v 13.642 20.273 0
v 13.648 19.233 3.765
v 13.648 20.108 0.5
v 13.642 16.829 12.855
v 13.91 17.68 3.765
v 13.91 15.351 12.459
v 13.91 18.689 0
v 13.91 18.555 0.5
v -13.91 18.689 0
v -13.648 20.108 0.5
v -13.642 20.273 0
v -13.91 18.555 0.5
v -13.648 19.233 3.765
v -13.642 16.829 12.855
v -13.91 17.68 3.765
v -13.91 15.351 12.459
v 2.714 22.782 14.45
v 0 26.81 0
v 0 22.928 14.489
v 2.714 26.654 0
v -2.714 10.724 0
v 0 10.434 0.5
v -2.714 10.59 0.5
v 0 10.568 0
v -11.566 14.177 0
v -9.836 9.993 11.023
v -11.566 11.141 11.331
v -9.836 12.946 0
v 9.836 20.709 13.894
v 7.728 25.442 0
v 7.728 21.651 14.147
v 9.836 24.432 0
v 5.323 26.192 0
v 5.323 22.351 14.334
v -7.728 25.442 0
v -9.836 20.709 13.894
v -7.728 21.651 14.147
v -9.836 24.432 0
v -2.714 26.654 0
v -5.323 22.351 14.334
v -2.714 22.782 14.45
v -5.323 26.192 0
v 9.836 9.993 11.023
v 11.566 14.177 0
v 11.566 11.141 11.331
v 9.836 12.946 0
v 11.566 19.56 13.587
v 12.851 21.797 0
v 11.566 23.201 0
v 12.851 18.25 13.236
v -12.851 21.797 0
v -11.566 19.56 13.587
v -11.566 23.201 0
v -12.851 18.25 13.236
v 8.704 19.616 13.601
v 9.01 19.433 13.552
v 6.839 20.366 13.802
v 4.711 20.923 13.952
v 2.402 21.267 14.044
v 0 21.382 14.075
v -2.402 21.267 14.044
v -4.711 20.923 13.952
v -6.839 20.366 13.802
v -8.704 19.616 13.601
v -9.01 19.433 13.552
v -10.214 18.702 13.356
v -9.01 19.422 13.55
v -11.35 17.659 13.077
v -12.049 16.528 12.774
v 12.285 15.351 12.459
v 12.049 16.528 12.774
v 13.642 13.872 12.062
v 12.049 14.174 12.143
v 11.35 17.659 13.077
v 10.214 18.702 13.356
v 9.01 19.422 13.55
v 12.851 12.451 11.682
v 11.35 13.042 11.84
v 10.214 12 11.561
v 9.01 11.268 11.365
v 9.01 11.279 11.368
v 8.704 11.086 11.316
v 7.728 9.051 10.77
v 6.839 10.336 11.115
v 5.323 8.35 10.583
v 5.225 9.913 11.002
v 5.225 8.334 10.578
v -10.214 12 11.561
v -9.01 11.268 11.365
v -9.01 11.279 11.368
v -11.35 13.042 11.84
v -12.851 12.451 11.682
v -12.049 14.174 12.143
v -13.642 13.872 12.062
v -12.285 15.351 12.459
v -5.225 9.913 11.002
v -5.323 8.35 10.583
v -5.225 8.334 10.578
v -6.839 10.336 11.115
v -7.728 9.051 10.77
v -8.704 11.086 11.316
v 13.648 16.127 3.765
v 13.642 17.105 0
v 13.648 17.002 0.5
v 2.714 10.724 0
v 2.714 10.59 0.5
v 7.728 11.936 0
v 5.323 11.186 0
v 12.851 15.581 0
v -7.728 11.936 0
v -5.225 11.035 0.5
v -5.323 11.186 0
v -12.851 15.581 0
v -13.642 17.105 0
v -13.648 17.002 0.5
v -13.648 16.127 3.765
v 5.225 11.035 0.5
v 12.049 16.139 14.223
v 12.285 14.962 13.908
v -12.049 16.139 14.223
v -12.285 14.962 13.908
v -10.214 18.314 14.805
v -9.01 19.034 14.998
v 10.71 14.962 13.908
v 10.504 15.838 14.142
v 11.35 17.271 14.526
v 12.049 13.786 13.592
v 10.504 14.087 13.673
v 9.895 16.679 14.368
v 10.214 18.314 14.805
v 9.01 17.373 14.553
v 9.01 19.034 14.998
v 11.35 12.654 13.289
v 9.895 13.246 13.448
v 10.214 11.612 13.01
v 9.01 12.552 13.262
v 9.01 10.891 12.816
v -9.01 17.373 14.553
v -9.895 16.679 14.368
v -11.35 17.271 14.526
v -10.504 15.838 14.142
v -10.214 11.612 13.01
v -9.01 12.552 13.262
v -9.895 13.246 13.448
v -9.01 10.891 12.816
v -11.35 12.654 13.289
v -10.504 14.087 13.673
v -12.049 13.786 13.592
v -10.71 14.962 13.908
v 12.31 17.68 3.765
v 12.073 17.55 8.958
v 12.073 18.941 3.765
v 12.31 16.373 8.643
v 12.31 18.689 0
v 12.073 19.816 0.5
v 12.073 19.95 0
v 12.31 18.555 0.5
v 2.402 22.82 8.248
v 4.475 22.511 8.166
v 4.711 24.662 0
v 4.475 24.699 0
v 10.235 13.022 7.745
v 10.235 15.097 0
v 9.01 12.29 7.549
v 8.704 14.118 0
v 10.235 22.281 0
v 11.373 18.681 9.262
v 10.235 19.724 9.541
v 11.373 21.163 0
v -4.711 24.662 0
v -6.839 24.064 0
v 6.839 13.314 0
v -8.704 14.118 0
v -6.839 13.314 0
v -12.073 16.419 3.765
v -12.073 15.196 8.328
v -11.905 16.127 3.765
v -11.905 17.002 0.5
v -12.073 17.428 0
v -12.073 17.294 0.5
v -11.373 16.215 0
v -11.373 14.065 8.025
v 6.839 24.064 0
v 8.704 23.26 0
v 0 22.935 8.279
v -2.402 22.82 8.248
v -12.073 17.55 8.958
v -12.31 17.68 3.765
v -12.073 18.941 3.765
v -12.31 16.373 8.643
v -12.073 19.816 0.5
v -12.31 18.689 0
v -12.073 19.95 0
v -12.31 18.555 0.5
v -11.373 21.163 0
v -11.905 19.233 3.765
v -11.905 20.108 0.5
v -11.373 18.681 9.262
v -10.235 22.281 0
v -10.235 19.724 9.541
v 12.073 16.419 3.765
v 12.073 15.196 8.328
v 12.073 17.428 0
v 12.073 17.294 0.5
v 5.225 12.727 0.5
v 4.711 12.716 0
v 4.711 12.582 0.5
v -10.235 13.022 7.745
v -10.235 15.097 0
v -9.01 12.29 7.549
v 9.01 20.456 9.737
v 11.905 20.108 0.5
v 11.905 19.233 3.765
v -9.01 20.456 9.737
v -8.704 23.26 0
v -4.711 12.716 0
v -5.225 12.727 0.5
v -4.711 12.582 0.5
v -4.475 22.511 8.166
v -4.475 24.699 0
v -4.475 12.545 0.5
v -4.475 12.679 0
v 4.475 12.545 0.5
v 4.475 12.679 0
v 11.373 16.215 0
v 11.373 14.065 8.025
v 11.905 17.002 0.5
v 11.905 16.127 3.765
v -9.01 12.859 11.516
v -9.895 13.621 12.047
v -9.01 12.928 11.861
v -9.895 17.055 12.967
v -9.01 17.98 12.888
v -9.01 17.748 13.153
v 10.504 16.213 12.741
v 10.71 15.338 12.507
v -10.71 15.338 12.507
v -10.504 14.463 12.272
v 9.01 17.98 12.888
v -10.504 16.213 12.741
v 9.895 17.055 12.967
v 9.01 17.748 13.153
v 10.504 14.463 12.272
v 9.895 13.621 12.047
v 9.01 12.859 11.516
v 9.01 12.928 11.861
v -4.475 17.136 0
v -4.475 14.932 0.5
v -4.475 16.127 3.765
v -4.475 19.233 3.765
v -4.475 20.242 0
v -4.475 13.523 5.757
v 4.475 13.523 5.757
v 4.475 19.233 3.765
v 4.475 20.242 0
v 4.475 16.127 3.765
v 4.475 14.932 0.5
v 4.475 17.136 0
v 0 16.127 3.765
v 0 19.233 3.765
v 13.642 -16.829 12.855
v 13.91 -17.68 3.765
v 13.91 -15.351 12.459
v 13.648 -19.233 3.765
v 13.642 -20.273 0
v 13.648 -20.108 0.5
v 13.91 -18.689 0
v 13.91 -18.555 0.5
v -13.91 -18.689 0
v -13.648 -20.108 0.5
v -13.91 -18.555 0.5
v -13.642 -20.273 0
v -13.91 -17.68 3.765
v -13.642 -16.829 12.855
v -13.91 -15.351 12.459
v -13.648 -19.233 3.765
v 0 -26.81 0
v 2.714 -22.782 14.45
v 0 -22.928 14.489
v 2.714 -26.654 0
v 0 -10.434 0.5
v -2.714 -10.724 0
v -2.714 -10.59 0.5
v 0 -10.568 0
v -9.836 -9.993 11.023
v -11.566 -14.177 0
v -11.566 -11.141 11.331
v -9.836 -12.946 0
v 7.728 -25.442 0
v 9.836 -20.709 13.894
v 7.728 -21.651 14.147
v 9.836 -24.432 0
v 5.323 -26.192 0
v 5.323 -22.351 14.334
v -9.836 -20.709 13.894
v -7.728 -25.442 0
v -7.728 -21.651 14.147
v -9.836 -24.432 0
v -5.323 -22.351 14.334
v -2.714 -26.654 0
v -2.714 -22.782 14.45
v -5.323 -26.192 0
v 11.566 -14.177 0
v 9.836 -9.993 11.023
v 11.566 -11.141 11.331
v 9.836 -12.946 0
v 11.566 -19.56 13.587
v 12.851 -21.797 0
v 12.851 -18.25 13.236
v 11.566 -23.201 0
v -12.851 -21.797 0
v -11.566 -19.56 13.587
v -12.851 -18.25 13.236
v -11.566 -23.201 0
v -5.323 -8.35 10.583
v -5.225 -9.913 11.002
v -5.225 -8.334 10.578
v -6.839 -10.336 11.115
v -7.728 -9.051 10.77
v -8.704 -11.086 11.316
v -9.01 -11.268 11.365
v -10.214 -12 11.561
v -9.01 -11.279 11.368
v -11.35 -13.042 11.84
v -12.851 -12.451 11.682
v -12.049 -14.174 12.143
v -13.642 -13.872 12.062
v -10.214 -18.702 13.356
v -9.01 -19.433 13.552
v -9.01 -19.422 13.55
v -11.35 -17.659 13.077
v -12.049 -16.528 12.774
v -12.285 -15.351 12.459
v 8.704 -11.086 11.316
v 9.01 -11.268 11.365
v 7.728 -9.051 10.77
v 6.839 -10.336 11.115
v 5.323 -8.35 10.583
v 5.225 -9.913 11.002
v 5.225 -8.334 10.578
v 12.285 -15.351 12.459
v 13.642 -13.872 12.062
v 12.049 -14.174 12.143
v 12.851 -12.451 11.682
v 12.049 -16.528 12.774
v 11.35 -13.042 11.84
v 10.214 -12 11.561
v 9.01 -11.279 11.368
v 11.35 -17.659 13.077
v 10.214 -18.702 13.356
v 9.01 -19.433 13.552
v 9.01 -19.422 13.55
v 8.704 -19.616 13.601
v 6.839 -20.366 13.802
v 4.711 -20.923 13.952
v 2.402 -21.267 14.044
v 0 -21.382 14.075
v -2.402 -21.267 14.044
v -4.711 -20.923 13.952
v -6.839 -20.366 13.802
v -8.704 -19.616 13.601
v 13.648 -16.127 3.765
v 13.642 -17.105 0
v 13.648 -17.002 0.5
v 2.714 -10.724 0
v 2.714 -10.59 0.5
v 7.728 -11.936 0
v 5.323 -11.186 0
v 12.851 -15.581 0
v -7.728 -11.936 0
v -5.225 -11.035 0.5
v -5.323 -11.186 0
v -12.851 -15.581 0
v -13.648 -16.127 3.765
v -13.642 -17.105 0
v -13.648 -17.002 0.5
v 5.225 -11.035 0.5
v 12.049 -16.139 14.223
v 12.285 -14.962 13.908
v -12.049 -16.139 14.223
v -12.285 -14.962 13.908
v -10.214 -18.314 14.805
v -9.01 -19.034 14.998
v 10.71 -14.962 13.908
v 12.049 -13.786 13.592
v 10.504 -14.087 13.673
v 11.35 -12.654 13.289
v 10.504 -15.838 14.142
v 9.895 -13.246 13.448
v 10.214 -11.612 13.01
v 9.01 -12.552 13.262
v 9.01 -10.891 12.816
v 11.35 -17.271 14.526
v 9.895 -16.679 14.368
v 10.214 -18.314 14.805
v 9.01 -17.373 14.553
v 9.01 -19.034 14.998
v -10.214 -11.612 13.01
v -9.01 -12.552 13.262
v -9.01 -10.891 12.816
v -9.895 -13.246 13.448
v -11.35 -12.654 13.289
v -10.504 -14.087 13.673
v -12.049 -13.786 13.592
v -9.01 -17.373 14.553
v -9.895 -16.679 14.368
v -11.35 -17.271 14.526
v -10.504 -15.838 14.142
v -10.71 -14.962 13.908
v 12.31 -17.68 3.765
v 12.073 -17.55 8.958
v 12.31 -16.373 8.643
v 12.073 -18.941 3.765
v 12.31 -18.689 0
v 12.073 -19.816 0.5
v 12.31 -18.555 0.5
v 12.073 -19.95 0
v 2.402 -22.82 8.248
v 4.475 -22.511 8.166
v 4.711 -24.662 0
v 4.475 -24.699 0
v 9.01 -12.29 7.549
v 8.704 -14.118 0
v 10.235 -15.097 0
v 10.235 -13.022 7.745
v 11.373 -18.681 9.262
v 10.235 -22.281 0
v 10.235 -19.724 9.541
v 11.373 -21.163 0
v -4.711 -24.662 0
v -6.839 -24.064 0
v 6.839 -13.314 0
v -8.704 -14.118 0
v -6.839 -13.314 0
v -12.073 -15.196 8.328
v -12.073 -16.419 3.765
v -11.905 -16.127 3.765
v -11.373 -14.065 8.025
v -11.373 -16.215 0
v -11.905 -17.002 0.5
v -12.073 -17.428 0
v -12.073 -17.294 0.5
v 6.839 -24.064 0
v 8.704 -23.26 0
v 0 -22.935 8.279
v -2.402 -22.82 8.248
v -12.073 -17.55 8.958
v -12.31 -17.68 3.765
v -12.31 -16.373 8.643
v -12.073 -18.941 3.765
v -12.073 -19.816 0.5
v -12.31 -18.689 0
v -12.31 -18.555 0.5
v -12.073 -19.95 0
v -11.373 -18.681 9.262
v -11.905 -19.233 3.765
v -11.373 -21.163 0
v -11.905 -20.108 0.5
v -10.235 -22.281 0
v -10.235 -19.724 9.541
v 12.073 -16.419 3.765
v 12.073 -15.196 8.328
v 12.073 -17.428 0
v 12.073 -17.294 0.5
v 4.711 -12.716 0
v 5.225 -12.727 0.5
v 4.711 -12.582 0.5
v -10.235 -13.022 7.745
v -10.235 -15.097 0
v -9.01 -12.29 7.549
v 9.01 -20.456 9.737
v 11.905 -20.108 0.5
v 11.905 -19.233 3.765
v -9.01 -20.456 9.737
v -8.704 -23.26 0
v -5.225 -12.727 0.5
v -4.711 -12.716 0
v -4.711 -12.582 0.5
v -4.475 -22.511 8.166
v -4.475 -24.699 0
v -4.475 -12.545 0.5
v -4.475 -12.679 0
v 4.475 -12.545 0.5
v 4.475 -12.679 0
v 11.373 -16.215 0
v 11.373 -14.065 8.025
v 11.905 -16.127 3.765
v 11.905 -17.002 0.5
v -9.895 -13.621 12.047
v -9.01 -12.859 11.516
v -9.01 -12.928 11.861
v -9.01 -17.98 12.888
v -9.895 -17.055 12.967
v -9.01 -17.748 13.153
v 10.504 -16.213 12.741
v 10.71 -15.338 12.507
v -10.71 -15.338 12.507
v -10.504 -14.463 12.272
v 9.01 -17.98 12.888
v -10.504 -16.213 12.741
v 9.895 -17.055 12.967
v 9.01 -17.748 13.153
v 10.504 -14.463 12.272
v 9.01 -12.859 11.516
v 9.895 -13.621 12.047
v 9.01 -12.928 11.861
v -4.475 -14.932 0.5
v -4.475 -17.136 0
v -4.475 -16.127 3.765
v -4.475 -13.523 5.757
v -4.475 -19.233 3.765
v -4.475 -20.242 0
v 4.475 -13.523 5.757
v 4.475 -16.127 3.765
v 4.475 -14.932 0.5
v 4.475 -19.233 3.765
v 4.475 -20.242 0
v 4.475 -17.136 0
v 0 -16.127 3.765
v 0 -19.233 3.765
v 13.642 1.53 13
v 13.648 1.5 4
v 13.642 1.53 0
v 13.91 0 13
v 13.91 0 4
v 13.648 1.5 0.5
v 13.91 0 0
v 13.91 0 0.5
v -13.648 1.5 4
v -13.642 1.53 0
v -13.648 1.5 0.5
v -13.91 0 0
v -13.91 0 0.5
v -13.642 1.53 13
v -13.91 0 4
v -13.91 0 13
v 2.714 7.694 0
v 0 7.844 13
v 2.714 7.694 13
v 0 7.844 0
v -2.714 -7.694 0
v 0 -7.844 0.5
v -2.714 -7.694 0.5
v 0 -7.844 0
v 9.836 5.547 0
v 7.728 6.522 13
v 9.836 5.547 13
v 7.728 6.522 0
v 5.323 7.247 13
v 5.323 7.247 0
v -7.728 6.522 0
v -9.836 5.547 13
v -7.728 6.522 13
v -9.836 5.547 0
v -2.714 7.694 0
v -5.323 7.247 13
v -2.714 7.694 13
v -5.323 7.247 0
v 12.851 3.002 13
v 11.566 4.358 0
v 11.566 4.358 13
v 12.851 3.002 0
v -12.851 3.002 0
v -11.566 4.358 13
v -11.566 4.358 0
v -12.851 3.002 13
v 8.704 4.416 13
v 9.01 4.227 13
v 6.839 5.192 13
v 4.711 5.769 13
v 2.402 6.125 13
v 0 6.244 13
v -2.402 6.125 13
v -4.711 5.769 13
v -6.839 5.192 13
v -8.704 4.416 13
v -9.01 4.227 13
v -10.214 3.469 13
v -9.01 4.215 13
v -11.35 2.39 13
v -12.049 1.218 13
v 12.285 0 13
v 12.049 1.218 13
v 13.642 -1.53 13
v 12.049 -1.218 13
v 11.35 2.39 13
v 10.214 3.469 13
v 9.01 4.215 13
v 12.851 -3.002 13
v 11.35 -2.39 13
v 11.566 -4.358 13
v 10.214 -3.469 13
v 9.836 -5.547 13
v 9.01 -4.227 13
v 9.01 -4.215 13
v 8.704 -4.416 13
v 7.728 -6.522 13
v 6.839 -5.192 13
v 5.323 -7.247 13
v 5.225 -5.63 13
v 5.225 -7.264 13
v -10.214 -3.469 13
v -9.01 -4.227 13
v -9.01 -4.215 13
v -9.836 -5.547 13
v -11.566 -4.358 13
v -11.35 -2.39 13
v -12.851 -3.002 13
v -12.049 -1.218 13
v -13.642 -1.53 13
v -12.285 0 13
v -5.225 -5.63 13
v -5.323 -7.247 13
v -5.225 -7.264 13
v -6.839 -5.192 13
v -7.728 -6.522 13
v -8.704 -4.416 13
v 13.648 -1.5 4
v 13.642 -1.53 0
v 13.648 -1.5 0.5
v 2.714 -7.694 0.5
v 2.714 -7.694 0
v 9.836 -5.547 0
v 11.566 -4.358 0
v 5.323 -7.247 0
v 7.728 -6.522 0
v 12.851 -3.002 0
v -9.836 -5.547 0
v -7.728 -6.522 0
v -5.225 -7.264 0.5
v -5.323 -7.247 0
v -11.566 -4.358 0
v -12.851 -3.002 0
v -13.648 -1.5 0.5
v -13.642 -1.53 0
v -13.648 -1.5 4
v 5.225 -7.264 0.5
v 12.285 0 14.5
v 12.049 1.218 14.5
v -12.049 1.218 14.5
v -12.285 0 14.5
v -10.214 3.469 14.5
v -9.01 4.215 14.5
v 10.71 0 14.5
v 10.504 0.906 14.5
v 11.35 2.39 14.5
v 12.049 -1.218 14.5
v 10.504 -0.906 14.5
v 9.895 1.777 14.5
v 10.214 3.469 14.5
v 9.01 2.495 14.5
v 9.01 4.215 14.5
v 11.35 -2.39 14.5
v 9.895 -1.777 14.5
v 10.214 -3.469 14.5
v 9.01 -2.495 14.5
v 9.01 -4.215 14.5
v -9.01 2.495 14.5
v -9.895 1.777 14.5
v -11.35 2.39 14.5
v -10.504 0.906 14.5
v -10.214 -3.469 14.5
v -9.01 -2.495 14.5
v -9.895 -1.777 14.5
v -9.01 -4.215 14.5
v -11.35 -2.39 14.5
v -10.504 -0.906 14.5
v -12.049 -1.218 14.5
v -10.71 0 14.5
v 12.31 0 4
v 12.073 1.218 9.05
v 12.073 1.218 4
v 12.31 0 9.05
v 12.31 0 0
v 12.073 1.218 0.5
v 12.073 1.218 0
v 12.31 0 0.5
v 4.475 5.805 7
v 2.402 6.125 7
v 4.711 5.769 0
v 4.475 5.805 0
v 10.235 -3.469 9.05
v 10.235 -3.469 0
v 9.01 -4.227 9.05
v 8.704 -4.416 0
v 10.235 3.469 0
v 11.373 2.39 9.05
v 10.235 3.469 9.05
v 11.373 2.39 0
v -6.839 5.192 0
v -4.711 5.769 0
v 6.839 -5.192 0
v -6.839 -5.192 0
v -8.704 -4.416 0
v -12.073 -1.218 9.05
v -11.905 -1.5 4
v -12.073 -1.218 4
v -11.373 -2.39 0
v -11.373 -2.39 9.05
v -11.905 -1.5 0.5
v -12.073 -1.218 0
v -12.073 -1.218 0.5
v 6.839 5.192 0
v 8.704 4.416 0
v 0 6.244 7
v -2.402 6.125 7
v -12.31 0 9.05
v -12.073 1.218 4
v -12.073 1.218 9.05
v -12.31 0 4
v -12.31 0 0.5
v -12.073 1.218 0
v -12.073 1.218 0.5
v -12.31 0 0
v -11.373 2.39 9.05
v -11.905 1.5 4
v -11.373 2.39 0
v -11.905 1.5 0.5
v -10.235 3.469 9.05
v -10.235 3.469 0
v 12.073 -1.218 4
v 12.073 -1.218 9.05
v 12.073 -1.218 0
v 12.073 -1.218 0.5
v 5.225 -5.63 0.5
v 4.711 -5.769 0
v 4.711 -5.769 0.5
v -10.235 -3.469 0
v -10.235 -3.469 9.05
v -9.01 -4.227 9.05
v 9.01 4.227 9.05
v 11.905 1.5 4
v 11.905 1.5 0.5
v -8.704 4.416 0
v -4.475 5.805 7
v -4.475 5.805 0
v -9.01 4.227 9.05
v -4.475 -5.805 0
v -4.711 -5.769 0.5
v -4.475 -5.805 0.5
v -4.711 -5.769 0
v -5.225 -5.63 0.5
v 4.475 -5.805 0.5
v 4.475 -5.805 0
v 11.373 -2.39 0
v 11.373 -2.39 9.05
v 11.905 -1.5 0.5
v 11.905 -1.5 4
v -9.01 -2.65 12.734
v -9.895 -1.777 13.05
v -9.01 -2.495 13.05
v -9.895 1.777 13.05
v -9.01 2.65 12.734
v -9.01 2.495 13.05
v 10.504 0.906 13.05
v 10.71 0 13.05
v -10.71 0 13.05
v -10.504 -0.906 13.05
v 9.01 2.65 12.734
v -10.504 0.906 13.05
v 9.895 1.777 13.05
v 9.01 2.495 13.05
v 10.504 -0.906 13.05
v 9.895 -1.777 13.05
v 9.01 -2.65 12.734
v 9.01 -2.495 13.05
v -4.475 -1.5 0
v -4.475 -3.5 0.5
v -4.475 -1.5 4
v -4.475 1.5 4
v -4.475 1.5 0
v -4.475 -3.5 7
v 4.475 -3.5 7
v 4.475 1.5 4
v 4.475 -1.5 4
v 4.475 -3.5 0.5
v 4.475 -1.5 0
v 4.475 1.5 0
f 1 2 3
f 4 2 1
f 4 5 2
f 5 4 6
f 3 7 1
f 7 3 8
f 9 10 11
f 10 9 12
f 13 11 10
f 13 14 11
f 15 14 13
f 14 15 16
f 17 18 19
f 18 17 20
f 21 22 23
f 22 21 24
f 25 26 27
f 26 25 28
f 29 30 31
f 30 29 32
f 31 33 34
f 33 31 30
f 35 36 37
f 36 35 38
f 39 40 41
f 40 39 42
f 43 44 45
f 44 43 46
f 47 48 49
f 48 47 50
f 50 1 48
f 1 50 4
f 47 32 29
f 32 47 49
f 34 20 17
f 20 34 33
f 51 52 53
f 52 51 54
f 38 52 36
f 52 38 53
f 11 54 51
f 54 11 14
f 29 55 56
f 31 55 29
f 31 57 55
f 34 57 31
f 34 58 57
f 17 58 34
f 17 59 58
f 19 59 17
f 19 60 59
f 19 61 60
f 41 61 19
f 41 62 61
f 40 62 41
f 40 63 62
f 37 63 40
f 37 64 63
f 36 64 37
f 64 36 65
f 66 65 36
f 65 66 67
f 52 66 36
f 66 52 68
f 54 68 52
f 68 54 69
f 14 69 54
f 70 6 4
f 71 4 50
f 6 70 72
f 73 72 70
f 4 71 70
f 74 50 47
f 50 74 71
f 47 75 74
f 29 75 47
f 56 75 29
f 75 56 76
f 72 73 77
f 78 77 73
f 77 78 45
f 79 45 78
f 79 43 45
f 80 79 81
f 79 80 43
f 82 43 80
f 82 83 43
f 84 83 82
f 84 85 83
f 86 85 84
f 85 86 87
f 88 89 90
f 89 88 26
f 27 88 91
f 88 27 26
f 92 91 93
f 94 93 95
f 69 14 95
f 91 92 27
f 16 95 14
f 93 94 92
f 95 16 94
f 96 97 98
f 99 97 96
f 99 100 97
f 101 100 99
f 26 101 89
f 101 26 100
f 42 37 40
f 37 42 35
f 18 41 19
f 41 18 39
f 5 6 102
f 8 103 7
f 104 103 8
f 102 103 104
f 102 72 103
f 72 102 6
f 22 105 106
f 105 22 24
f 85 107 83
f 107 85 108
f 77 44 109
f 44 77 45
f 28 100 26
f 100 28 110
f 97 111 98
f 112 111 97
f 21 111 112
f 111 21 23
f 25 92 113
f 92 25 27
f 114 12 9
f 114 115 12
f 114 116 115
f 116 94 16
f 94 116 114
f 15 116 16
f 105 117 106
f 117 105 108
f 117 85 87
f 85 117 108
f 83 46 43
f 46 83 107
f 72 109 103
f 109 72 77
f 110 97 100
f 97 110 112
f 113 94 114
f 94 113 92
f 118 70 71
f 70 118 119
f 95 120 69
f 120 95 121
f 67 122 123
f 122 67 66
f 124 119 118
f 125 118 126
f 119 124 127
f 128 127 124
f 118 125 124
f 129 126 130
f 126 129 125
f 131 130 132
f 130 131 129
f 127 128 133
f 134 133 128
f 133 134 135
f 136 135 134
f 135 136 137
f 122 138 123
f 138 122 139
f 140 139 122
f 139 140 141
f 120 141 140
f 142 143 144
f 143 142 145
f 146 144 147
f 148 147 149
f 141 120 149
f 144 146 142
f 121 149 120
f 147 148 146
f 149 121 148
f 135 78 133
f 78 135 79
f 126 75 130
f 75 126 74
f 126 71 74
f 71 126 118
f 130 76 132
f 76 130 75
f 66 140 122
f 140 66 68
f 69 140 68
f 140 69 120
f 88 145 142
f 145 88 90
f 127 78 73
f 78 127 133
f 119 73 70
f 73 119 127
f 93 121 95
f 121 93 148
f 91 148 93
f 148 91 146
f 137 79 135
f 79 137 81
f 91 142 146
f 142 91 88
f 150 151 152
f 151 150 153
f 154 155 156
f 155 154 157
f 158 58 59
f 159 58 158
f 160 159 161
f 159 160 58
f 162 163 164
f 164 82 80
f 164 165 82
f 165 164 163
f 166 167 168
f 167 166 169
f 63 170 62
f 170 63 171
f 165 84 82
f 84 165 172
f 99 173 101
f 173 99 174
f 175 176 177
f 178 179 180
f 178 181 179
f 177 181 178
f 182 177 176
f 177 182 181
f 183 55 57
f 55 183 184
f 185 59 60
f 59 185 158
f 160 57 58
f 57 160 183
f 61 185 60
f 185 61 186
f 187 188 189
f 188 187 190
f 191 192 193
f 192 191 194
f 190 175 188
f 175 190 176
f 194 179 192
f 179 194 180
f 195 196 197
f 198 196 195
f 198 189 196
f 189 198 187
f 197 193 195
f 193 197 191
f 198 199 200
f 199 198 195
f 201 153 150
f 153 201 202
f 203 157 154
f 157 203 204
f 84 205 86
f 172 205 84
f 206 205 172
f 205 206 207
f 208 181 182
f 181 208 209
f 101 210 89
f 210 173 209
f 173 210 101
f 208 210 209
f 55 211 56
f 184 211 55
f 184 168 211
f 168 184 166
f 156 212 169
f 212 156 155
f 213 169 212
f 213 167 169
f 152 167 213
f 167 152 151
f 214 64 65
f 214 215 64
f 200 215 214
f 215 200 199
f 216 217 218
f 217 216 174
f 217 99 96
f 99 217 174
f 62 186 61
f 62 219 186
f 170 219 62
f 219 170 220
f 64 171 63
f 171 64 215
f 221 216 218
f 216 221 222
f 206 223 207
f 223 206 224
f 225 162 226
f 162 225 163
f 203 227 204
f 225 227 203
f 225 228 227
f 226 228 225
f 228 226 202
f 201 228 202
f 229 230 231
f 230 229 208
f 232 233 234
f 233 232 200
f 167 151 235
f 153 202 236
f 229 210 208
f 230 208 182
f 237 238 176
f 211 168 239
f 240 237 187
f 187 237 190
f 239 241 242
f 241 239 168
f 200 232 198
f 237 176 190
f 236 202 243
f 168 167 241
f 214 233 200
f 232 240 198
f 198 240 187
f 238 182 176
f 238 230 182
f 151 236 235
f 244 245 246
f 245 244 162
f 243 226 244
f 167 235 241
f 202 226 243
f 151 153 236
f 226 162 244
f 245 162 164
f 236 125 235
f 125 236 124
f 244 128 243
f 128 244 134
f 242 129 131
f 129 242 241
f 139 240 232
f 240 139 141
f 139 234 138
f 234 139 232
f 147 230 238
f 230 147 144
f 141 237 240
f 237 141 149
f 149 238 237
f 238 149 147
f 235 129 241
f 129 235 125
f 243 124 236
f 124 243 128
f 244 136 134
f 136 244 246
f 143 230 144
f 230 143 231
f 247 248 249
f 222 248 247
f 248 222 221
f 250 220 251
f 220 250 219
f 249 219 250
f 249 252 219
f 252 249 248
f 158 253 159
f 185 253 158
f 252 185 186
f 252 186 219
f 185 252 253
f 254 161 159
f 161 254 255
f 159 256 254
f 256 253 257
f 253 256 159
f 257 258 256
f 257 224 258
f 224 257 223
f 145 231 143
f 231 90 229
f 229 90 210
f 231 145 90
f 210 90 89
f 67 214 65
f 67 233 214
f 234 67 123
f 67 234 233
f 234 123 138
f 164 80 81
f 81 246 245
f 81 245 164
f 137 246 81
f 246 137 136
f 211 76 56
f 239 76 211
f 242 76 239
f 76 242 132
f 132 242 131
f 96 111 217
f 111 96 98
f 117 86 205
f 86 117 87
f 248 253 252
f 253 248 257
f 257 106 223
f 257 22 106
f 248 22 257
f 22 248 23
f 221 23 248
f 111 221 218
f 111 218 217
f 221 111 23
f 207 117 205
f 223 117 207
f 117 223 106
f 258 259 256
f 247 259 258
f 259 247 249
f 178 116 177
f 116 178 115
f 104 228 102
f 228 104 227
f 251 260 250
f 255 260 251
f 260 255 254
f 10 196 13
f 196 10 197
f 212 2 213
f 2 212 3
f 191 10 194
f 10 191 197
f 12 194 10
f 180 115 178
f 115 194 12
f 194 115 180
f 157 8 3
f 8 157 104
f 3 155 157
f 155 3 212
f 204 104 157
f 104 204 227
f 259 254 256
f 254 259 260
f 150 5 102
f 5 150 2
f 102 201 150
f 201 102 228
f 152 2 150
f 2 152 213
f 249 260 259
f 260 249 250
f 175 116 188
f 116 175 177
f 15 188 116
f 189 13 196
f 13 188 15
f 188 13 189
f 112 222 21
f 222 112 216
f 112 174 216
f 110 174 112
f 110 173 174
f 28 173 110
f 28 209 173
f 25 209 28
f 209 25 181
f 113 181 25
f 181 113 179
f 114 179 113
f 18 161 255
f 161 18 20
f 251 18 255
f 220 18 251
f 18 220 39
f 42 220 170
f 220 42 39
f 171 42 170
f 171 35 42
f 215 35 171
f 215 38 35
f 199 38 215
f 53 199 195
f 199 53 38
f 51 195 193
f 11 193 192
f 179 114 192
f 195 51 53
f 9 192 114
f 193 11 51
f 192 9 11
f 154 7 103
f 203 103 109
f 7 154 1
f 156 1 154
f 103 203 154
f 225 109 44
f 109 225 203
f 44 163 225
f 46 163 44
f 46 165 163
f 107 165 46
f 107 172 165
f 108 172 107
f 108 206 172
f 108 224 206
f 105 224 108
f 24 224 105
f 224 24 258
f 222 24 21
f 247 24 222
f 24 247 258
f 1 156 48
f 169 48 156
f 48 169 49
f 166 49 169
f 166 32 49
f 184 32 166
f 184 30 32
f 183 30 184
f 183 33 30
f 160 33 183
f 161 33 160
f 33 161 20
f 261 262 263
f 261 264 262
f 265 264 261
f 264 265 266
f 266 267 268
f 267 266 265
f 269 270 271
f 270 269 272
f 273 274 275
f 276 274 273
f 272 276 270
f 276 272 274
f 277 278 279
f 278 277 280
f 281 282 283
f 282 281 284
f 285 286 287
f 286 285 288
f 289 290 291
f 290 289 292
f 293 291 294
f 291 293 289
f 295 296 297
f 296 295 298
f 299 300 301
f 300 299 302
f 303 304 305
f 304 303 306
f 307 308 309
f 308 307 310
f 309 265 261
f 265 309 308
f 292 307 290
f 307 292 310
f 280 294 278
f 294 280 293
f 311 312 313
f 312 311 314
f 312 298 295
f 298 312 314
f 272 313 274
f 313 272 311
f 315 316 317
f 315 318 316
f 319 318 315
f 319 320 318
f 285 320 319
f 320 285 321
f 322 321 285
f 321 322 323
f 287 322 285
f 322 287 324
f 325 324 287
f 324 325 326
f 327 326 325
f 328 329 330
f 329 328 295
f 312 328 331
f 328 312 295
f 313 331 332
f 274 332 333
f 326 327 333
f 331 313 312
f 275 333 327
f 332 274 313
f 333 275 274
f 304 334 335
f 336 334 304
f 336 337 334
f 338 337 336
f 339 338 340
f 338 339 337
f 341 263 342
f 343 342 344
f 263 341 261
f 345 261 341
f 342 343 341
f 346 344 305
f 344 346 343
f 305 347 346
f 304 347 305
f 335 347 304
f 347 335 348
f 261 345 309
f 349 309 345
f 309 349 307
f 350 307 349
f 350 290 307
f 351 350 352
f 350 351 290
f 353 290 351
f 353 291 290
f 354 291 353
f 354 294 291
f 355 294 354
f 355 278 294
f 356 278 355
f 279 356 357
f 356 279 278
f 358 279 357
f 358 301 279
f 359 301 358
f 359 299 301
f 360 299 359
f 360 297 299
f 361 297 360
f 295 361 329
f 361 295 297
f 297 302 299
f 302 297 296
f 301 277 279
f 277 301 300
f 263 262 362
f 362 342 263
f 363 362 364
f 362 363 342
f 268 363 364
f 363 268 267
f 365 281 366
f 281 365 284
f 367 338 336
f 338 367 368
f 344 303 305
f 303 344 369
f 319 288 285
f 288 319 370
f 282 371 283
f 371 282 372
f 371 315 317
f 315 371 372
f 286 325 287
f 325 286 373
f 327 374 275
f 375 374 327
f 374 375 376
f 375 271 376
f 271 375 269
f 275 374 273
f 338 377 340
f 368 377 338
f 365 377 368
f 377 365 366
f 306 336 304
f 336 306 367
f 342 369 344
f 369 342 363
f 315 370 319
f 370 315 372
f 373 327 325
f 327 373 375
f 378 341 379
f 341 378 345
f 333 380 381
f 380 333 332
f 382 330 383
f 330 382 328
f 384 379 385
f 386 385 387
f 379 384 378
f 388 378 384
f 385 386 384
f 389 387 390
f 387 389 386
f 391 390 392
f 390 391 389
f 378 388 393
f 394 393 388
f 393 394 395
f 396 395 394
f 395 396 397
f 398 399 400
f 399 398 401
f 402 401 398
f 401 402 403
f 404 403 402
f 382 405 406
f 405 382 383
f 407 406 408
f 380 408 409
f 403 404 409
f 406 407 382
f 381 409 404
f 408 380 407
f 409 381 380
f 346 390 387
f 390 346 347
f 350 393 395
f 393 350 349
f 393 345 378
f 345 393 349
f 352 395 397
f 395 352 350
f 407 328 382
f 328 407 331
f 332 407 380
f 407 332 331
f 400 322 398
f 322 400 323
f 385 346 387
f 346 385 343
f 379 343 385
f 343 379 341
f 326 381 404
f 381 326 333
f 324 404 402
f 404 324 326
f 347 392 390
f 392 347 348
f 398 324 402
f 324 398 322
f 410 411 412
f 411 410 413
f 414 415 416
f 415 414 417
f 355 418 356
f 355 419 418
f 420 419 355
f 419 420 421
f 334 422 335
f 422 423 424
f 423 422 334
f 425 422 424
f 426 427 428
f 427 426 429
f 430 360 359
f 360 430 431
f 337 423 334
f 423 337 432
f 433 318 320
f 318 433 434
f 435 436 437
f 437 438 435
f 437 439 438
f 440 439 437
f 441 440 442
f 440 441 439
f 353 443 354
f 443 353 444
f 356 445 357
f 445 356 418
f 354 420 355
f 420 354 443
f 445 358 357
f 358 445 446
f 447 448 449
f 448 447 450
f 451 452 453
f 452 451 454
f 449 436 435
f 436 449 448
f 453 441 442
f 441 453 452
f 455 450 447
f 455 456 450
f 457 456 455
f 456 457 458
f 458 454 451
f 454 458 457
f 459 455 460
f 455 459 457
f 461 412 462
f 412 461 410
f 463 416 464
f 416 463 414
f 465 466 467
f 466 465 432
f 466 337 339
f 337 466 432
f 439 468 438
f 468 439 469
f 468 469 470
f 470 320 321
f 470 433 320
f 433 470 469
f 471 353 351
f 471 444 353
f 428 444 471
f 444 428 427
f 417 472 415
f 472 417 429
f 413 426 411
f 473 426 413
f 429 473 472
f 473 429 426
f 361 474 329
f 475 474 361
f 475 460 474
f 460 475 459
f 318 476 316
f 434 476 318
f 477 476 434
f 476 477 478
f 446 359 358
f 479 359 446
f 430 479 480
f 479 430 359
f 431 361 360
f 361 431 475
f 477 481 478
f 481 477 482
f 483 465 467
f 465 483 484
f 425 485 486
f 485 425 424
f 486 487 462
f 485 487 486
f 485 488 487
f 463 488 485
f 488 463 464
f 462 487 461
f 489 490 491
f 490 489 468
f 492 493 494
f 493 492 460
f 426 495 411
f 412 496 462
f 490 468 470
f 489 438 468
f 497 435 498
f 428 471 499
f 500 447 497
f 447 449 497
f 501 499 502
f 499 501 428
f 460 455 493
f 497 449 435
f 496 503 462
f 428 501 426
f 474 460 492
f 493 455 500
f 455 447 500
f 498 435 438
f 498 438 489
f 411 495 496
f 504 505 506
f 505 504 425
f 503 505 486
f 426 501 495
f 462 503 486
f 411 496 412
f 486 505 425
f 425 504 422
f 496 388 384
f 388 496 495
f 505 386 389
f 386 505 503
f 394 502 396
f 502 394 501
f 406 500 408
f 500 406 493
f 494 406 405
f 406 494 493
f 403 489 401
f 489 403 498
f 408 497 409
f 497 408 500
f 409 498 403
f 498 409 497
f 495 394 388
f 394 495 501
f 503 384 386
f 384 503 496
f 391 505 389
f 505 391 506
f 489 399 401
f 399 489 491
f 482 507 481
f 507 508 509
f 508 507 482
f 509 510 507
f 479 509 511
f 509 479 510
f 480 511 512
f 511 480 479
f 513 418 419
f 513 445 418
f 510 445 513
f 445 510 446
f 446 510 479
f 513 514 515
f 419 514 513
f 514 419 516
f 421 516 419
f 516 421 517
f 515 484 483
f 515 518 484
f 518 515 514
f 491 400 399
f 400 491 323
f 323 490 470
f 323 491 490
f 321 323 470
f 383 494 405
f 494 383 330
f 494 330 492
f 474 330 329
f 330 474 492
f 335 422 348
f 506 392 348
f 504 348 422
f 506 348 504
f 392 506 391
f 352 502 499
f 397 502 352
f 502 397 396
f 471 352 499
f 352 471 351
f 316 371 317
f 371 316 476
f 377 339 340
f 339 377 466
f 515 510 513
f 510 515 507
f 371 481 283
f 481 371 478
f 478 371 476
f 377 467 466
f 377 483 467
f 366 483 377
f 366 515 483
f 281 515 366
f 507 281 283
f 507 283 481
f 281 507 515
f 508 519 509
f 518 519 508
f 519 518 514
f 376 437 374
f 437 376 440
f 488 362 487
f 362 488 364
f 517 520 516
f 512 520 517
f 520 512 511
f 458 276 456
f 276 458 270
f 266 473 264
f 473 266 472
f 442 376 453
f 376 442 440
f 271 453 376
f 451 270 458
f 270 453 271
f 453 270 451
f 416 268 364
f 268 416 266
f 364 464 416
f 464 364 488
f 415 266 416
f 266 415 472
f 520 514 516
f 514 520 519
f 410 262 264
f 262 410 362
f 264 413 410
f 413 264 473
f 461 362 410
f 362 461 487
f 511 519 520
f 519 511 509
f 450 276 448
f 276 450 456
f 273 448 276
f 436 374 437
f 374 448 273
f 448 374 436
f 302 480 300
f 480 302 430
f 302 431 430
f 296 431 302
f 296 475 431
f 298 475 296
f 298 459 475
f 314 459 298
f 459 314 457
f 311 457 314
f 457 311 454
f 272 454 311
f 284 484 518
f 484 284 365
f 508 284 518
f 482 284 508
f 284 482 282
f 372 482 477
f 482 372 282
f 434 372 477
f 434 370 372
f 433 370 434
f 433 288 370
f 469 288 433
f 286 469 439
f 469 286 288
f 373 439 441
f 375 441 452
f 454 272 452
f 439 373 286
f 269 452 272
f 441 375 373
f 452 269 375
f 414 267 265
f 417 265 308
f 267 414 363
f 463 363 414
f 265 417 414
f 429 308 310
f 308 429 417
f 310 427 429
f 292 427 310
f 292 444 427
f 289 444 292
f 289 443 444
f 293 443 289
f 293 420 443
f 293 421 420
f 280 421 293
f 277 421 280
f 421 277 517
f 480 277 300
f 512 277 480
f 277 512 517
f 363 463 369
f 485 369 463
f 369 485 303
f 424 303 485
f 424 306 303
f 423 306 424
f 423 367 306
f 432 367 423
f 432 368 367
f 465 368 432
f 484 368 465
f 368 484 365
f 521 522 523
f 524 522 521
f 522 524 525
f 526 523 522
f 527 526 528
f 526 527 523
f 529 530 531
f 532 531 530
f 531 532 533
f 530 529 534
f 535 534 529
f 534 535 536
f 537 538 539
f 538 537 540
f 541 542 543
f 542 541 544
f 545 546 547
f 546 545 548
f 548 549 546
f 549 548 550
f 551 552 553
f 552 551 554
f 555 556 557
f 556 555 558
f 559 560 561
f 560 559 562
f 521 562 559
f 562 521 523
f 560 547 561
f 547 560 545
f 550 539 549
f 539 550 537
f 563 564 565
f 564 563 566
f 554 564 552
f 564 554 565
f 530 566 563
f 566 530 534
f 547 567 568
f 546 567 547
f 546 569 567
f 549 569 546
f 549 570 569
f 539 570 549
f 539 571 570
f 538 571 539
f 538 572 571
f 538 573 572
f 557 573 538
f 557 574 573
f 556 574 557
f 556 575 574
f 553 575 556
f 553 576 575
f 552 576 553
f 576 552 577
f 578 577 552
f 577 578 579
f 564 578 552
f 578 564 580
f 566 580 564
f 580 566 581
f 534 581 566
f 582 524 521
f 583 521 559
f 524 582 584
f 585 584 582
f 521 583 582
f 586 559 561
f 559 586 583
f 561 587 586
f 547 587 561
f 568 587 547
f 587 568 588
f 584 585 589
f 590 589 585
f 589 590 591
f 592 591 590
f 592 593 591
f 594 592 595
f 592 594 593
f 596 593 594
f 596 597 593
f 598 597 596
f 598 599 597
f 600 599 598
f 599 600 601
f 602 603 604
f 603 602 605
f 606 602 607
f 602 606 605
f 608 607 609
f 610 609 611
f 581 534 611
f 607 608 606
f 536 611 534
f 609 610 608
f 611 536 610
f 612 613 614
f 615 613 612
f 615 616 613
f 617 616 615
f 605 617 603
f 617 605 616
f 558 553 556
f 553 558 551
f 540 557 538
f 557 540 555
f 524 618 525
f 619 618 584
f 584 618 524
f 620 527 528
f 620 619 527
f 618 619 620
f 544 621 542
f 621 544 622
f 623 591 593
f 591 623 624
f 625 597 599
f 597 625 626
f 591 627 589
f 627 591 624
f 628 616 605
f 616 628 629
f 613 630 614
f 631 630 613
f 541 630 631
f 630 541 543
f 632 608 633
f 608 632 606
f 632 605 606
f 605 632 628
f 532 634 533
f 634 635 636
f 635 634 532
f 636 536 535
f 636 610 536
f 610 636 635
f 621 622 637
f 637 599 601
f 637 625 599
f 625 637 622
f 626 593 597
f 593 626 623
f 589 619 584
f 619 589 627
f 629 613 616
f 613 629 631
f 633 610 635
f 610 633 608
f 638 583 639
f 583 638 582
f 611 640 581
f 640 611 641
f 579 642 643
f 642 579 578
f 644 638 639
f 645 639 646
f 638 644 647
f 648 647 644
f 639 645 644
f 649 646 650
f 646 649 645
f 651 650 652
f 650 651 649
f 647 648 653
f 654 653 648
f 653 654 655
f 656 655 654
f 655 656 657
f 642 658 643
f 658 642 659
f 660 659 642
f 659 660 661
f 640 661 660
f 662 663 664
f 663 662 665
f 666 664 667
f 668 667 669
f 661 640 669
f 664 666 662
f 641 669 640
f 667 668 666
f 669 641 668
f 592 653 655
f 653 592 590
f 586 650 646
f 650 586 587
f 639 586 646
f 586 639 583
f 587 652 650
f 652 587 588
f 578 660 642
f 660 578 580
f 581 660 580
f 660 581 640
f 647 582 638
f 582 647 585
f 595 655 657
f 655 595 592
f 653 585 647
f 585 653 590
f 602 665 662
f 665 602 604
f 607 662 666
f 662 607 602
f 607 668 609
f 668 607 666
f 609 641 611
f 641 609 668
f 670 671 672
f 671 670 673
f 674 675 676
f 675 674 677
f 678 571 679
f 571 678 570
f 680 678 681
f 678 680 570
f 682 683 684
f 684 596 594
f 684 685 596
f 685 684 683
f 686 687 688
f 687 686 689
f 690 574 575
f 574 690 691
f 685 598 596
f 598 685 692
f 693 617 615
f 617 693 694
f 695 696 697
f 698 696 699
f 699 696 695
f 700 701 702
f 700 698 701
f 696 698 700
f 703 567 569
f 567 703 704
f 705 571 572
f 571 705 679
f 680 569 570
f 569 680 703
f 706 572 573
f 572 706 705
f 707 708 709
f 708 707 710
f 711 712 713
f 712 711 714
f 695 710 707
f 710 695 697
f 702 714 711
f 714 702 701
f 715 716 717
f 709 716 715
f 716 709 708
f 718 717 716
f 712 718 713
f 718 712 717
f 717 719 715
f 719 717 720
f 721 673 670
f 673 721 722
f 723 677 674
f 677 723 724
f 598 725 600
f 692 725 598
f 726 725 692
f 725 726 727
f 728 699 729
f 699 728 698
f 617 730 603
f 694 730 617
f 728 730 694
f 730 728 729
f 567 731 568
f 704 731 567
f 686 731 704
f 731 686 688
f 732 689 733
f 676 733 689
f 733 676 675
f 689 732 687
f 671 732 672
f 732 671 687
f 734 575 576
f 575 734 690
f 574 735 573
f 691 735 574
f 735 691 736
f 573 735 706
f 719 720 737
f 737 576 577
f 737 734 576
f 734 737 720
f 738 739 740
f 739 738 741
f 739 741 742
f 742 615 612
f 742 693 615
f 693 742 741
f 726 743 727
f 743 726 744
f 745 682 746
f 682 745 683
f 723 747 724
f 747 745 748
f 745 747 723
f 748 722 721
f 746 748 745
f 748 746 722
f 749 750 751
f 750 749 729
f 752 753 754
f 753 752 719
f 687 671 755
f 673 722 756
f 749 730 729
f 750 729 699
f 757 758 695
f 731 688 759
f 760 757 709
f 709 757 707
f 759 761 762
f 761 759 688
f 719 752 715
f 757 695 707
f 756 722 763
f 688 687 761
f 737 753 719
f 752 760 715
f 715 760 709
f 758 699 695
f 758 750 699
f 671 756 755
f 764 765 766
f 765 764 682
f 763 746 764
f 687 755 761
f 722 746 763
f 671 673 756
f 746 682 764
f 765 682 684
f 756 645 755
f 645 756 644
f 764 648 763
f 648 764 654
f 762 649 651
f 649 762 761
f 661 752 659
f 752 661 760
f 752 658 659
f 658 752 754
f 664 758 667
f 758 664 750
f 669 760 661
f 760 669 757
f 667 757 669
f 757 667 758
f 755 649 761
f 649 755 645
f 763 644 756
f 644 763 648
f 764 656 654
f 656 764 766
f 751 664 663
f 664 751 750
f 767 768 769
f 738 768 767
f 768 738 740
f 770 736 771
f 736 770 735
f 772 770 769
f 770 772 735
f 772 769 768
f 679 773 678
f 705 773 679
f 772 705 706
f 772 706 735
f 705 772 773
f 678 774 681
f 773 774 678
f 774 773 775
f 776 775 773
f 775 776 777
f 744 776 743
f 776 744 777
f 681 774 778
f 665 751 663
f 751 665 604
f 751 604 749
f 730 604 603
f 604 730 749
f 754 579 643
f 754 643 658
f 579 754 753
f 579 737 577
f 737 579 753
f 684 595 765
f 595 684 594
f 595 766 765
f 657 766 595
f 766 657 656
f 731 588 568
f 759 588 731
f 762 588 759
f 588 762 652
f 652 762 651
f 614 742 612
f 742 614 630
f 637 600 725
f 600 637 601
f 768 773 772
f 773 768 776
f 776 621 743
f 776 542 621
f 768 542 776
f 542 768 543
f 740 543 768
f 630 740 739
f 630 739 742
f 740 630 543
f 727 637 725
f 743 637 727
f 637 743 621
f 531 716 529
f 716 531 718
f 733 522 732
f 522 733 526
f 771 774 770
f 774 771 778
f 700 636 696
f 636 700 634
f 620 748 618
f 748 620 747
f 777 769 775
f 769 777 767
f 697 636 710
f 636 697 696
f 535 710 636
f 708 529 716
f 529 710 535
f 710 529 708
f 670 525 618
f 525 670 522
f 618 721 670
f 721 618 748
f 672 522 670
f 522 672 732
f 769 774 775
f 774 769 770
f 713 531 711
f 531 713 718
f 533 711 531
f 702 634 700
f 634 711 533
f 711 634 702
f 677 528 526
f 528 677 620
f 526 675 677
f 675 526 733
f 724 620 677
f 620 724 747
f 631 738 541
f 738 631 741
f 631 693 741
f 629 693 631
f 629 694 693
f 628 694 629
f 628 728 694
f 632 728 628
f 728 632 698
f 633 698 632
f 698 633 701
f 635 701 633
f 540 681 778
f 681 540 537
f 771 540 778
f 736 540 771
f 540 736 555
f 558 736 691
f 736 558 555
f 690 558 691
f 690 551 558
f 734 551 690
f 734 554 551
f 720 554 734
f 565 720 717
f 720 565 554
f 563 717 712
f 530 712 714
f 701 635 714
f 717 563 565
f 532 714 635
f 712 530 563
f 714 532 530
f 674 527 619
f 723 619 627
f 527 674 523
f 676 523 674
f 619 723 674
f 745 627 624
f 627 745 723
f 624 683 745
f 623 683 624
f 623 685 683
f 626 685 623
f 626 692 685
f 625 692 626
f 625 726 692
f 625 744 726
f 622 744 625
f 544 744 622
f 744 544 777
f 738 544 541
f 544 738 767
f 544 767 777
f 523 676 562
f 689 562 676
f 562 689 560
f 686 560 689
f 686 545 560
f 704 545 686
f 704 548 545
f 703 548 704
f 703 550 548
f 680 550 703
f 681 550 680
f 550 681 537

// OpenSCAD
// file: microscope_parameters.scad
/******************************************************************
*                                                                 *
* OpenFlexure Microscope: Microscope Parameters                   *
*                                                                 *
* This is the top-level configuration file for the OpenFlexure    *
* microscope, an open microscope and 3-axis translation stage.    *
* It gets really good precision over a ~10mm range, by using      *
* plastic flexure mechanisms.                                     *
*                                                                 *
* Generally I've tried to put parts (or collections of closely    *
* related parts) in their own files.  However, all the parts      *
* depend on the geometry of the microscope - so these parameters  *
* are gathered together here.  In general, the ones you might     *
* to change are towards the top!  Lower-down ones are defined in  *
* terms of higher-up ones - confusion might arise if you redefine *
* these later...                                                  *
*                                                                 *
* (c) Richard Bowman, January 2016                                *
* Released under the CERN Open Hardware License                   *
*                                                                 *
* http://www.github.com/rwb27/openflexure_microscope              *
* http://www.docubricks.com/projects/openflexure-microscope       *
* http://www.waterscope.org                                       *
*                                                                 *
******************************************************************/

d = 0.05;
$fn=32;

// These are the most useful parameters to change!
big_stage = false;
motor_lugs = true;
version_numstring = "5.17.2";
camera = "picamera_2"; //see cameras/camera.scad for valid values
optics = big_stage?"rms_f40d16":"pilens"; //see optics.scad for valid values

// This sets the basic geometry of the microscope
sample_z = big_stage?65:40; // height of the top of the stage
leg_r = big_stage?30:25; // radius of innermost part of legs (stage size)
hole_r = big_stage?15:10; // size of hole in the stage
xy_lever_ratio = big_stage?4.0/7.0:1.0; // mechanical advantage of actuator over stage - can be used to trade speed and precision
z_lever_ratio = big_stage?2.4:2.6; // as above, for Z axis (must be >1)
// The variables below affect the position of the objective mount
z_strut_l = big_stage?20:15; //length of struts supporting Z carriage
objective_clip_y = big_stage?12:6; // y position of clip for optics
objective_clip_w = 10; // width of the dovetail clip for the optics
foot_height = 15; //height of the feet (distance from bottom of body to table)

// These variables set the dimensions of flexures
// You might want to tweak them if your material (or printer)
// is different from the ones I've tested, though ABS/PLA extrusion
// is generally fine with my parameters
stage_flex_w = 4; // width of XY axis flexures
zflex_l = 1.5;    // length of (all) flexible bits
zflex_t = 0.75;   // thickness of (all) flexible bits
zflex = [stage_flex_w, zflex_l, zflex_t]; // the above in new-style format
flex_a = 0.15;    // sine of the angle through which flexures can be bent

// Compile a sensible version string
version_string = str("v",version_numstring, big_stage?"-LS":"-SS", sample_z, motor_lugs?"-M":"");
echo(str("Compiling OpenFlexure Microscope ",version_string));

stage_t=5; //thickness of the XY stage (at thickest point, most is 1mm less)
flex_z1 = 0;      // z position of lower flexures for XY axis
flex_z2 = sample_z-stage_t; //height of upper XY flexures
z_strut_t = 6;  // (z) thickness of struts for Z axis
z_flex_w = 4;   // width of struts for Z axis
leg = [4,stage_flex_w,flex_z2+zflex_t]; // size of vertical legs
leg_middle_w = 12; // width of the middle part of each leg
actuator_h = 25; //height of the actuator columns
dz = 0.5; //small increment in Z (~ 2 layers)

leg_outer_w = leg_middle_w + 2*zflex_l + 2*leg[0]; // overall width of parallelogram legs that support the stagef
actuator = [3*1.2+2*2,(flex_z2 - flex_z1)*xy_lever_ratio,6]; // dimensions of the core part of the actuating levers for X and Y - NB should match the column_base_r in compact_nut_seat.scad
actuating_nut_r = (flex_z2 - flex_z1)*xy_lever_ratio; // distance from leg_r to the actuating nut/screw for the XY axes
xy_actuator_travel = actuating_nut_r*0.15; // distance moved by XY axis actuators
z_flexure_x = (leg_r-zflex_l-max(5,leg[2]*0.1))*sqrt(2); // x position of the outside of the Z-axis static anchors (either side of the XY stage, on the X axis)
z_flexure_spacing = min(flex_z2-actuator[2]-z_strut_l*0.22-2, 30); // distance between the two sets of flexures on the Z axis
z_carriage = [(z_flexure_x-zflex_l*2-z_strut_l)+d,4,z_flexure_spacing+zflex_t]; //size of the moving block for the Z carriage
z_nut_y = (z_strut_l+zflex_l)*z_lever_ratio+zflex_l/2; // position of Z actuator
z_actuator_travel = z_nut_y*0.15; // distance moved by the Z actuator
z_carriage_y = z_strut_l+2*zflex_l; // y position of moving pivot on Z axis
z_link_w = 4; // width of linking bar between top Z-axis flexure struts
bridge_dz = 10; // spacing between thin links on legs
base_t=1; // thickness of the flat base of the structure
wall_h=15; // height of the stiffening vertical(ish) walls
wall_t=2; //thickness of the stiffening walls
zawall_h = z_flexure_spacing - 5; //height of wall near Z anchor
zbwall_h = z_actuator_travel+z_strut_t+1+2; //height of bridge over Z lever
illumination_clip_y = (-(leg_r-zflex_l-wall_t/2+leg_outer_w/2)/sqrt(2)
                       -wall_t/2-1); //position of clip for
                      // illumination/back foot.  This is set to
                      // coincide with the wall between the back
                      // two legs.
illumination_arm_screws = [[0,illumination_clip_y+3,0],
                           [-z_flexure_x+3,-3,0],
                           [z_flexure_x-3,-3,0]];
                      // positions of screws that mount the adjustable version of the 
                      // illumination arm
condenser_clip_y = -8; //position of dovetail for condenser assembly
base_mounting_holes = [[-20,z_nut_y-4,0],[20,z_nut_y-4,0],[-z_flexure_x-4,-8,0],[z_flexure_x+4,-8,0]]; // holes to screw the microscope to a baseplate
// main file
/******************************************************************
*                                                                 *
* OpenFlexure Microscope: Microscope Feet                         *
*                                                                 *
* This file generates the feet for the microscope                 *
*                                                                 *
* Each foot sits under one actuator column, and clips in with     *
* lugs either side.  They have hooks in the bottom to hold the    *
* elastic bands and stops to limit the lower travel of the stage. *
*                                                                 *
* (c) Richard Bowman, January 2017                                *
* Released under the CERN Open Hardware License                   *
*                                                                 *
* http://www.github.com/rwb27/openflexure_microscope              *
* http://www.docubricks.com/projects/openflexure-microscope       *
* http://www.waterscope.org                                       *
*                                                                 *
******************************************************************/

include <microscope_parameters.scad> //for foot_height
use <utilities.scad>;
use <compact_nut_seat.scad>;
d = 0.05;

module foot_ground_plane(tilt=0, top=0, bottom=-999){
    //This represents where the ground would be, given that the
    //foot is usually printed tilted, pivoting around it's +y edge
    //As printed, the ground plane is the print bed, i.e. z=0
    //However, the foot is used in a different orientation, tilted
    //around the outer edge (so the microscope sits on the outer 
    //edges of the feet).
    //NB top and bottom refer to coordinates in the printing frame, so
    //they will be slightly larger Z shifts in the tilted (model) frame.
    l = ss_outer()[1];
    translate([0, l/2, 0]) rotate([-tilt+180,0,0]) translate([0,0,-top]) cylinder(r=999,h=top-bottom,$fn=8);
}

module foot(travel=5, 
            tilt=0, 
            hover=0, 
            entry_w=2*column_base_radius()+3, 
            lie_flat=true){
    w = ss_outer()[0]; //size of the outside of the screw seat column
    l = ss_outer()[1];
    cw = column_core_size()[0]; //size of the inside of the screw seat column
    cl = column_core_size()[1];
    wall_t = (w-cw)/2; //thickness of the wall
    h = foot_height - hover; //defined in parameters.scad, set hover=2 to not touch ground
    rotate([lie_flat?tilt:0,0,0]) //the foot prints tilted, lie_flat
    translate([0,0,lie_flat?-l/2*tan(tilt):-h]) //makes the bottom z=0
    difference(){
        union(){
            resize([w,l,2*h]) cylinder(d=w, h=h, center=true); //main part of foot
            resize([cw-d,cl,2*h+3]) cylinder(d=w, h=h, center=true); //lugs on top
        }
        //hollow out the inside
        difference(){
            //the core tapers at the top to support the lugs
            sequential_hull(){
                translate([0,0,-999]) resize([cw,cl,d]) cylinder(d=w,h=d);
                translate([0,0,h-4]) resize([cw,cl,d]) cylinder(d=w,h=d);
                translate([0,0,h]) resize([cw-2*wall_t,cl-2*wall_t,d]) cylinder(d=w,h=d);
                translate([0,0,999]) resize([cw-2*wall_t,cl-2*wall_t,d]) cylinder(d=w,h=d);
            }
            cube([2*column_base_radius()+1.5, 999, 2*(h-travel-1)],center=true); //anchor for elastic bands
        }
        //cut out the core again, without tapering, in the middle (to make two lugs,
        //one on either side - rather than a ring around the top.
        translate([0,0,h-travel-1]) intersection(){
            cube([cw-3.3*2, 999, 999],center=true);
            resize([cw,cl,999]) cylinder(d=w,h=999);
        }
        
        //cut out the shell close to the microscope centre to allow the actuator 
        //to protrude (and bands to get in)
        difference(){
            translate([0,-l/2,0]) cube([entry_w, l-7, 999], center=true);
            //NB we leave the very bottom, to help it stick to the bed.
            foot_ground_plane(tilt=tilt, top=0.5);
        }
        
        //cut out a slot to allow bands to locate nicely, and/or to wrap round the outside
        intersection(){
            cube([999, 3, 999],center=true); 
            foot_ground_plane(tilt=tilt, bottom=0.5, top=(h-travel-4)*cos(tilt) - l/2*sin(tilt)); //bed adhesion...
        }
        cube([entry_w+d, 3, l*sin(tilt)+2], center=true); //make a real hole in the
        //middle - the other adhesion-helping bits will snap easily but this may not.

        //cut off the foot below the "ground plane" (i.e. print bed)
        foot_ground_plane(tilt=tilt);
    }
}
//foot(tilt=15);
//foot(tilt=0,hover=2);

reflect([0,1,0]) translate([0,ss_outer()[1]+3, 0]) foot(tilt=15, lie_flat=true);
foot(tilt=0,hover=2, lie_flat=true);
